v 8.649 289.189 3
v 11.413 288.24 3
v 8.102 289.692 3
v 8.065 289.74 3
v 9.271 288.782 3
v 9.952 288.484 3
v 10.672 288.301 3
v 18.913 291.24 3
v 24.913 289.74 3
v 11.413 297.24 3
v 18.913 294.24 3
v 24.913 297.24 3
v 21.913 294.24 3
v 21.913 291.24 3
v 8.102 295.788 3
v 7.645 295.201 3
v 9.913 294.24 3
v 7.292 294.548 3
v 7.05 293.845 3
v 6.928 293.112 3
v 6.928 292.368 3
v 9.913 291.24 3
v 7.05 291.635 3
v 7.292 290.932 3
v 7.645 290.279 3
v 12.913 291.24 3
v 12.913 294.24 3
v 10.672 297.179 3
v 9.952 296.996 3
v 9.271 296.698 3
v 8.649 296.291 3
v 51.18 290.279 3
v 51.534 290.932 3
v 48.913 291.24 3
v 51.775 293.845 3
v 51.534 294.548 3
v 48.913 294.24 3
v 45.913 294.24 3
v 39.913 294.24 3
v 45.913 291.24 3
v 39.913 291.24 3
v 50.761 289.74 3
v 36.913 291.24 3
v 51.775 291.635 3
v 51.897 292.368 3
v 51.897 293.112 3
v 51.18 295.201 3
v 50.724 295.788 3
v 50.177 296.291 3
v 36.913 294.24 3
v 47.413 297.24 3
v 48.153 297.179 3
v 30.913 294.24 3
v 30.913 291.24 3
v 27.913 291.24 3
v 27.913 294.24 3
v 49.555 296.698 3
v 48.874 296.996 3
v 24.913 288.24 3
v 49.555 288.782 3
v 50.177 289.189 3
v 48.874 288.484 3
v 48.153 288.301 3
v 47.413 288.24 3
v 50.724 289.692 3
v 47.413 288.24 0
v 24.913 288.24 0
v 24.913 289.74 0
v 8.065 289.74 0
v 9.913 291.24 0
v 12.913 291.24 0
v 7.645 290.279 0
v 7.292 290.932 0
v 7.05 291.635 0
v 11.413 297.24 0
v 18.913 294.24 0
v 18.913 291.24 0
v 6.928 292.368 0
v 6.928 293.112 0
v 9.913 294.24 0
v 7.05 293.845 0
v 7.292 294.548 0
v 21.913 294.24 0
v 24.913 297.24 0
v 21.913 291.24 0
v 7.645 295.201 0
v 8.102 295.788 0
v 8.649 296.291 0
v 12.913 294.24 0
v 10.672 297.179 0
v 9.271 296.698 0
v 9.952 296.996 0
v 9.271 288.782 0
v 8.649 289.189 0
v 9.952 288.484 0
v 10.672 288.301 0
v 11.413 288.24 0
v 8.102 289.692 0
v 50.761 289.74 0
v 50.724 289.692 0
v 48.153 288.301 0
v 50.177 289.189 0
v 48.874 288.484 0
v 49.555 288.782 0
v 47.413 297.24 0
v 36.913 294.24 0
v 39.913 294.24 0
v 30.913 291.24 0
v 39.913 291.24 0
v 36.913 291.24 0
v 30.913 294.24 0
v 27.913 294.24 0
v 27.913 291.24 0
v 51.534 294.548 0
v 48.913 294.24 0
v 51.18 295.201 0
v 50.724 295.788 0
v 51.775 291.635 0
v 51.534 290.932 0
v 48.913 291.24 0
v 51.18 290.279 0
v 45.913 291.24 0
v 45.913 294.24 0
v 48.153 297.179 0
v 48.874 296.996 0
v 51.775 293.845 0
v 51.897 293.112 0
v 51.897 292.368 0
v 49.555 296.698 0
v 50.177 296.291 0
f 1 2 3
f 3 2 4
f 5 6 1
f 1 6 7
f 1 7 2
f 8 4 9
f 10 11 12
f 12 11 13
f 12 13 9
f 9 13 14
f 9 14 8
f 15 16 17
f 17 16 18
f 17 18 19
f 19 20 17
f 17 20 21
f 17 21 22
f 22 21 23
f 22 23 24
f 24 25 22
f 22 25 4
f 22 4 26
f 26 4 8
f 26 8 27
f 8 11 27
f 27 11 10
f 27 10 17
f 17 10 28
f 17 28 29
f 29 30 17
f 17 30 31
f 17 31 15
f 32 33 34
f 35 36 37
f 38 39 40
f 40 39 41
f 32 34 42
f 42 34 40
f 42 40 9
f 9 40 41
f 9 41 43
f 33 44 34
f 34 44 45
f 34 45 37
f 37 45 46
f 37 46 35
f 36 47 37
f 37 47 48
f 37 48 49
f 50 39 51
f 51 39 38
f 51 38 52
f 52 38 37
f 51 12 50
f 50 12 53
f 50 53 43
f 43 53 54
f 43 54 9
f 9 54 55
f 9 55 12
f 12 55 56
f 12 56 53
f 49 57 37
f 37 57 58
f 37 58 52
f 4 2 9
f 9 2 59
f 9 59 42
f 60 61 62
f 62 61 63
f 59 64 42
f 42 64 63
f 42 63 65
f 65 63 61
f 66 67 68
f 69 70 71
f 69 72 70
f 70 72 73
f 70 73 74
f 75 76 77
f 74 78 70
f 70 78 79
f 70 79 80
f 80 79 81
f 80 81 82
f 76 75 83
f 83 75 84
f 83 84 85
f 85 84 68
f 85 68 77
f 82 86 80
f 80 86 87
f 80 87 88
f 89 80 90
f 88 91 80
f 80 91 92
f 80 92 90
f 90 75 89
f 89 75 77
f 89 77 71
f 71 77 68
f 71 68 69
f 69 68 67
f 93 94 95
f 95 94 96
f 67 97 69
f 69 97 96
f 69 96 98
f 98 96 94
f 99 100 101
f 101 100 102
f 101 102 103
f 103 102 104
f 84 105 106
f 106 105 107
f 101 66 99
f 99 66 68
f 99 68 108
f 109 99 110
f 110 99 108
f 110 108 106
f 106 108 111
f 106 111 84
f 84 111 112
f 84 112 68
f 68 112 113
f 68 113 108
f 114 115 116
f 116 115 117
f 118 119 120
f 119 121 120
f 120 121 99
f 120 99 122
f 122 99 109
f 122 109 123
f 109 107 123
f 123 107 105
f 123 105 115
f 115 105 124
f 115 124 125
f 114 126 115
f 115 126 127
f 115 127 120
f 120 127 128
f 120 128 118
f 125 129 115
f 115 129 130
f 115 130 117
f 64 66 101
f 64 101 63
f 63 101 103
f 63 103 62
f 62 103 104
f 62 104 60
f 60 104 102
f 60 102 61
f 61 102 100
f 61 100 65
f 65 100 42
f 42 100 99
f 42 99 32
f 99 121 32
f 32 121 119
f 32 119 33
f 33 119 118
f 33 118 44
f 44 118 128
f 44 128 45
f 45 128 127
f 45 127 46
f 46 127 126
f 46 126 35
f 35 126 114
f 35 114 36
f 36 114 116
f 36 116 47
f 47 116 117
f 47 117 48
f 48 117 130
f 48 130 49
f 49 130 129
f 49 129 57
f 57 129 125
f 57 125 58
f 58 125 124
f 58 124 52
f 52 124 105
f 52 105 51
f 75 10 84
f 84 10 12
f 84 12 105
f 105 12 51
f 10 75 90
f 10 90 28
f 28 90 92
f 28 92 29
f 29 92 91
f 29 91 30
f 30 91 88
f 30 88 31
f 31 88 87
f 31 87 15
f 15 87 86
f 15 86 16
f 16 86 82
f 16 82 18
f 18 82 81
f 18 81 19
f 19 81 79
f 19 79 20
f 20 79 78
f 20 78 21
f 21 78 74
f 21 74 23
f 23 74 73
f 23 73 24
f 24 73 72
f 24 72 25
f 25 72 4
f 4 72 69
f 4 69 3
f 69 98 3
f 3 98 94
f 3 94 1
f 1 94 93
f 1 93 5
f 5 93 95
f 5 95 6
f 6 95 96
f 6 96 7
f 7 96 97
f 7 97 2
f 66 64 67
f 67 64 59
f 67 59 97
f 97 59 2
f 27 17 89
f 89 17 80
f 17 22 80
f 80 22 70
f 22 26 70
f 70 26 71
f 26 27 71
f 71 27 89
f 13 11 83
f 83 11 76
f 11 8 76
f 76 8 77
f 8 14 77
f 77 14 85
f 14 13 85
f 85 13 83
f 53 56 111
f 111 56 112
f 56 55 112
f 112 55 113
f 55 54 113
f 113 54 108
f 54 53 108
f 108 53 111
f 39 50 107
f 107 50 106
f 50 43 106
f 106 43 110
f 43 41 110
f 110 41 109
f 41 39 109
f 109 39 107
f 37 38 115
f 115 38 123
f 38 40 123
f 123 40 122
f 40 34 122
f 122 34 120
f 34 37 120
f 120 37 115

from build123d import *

# Parameters (mm, degrees)
MODEL_W                 = 3
MODEL_H                 = 3
SALIENTE_EXTRUIR1_DEPTH = 3


with BuildPart() as part:
    # Model → Saliente-Extruir1 (new body)
    with BuildSketch(Plane.XY):
        with BuildLine():
            Line((11.412749203, 297.239922936), (47.412749203, 297.239922936))
            ThreePointArc((47.412749203, 297.239922936), (51.912749203, 292.739922936), (47.412749203, 288.239922936))
            Line((47.412749203, 288.239922936), (11.412749203, 288.239922936))
            ThreePointArc((11.412749203, 288.239922936), (6.912749203, 292.739922936), (11.412749203, 297.239922936))
        make_face()
        with Locations((11.412749203, 292.739922936)):
            Rectangle(MODEL_W, MODEL_H, mode=Mode.SUBTRACT)
        with Locations((20.412749203, 292.739922936)):
            Rectangle(MODEL_W, MODEL_H, mode=Mode.SUBTRACT)
        with Locations((29.412749203, 292.739922936)):
            Rectangle(MODEL_W, MODEL_H, mode=Mode.SUBTRACT)
        with Locations((38.412749203, 292.739922936)):
            Rectangle(MODEL_W, MODEL_H, mode=Mode.SUBTRACT)
        with Locations((47.412749203, 292.739922936)):
            Rectangle(MODEL_W, MODEL_H, mode=Mode.SUBTRACT)
    extrude(amount=SALIENTE_EXTRUIR1_DEPTH)


solid = part.part
